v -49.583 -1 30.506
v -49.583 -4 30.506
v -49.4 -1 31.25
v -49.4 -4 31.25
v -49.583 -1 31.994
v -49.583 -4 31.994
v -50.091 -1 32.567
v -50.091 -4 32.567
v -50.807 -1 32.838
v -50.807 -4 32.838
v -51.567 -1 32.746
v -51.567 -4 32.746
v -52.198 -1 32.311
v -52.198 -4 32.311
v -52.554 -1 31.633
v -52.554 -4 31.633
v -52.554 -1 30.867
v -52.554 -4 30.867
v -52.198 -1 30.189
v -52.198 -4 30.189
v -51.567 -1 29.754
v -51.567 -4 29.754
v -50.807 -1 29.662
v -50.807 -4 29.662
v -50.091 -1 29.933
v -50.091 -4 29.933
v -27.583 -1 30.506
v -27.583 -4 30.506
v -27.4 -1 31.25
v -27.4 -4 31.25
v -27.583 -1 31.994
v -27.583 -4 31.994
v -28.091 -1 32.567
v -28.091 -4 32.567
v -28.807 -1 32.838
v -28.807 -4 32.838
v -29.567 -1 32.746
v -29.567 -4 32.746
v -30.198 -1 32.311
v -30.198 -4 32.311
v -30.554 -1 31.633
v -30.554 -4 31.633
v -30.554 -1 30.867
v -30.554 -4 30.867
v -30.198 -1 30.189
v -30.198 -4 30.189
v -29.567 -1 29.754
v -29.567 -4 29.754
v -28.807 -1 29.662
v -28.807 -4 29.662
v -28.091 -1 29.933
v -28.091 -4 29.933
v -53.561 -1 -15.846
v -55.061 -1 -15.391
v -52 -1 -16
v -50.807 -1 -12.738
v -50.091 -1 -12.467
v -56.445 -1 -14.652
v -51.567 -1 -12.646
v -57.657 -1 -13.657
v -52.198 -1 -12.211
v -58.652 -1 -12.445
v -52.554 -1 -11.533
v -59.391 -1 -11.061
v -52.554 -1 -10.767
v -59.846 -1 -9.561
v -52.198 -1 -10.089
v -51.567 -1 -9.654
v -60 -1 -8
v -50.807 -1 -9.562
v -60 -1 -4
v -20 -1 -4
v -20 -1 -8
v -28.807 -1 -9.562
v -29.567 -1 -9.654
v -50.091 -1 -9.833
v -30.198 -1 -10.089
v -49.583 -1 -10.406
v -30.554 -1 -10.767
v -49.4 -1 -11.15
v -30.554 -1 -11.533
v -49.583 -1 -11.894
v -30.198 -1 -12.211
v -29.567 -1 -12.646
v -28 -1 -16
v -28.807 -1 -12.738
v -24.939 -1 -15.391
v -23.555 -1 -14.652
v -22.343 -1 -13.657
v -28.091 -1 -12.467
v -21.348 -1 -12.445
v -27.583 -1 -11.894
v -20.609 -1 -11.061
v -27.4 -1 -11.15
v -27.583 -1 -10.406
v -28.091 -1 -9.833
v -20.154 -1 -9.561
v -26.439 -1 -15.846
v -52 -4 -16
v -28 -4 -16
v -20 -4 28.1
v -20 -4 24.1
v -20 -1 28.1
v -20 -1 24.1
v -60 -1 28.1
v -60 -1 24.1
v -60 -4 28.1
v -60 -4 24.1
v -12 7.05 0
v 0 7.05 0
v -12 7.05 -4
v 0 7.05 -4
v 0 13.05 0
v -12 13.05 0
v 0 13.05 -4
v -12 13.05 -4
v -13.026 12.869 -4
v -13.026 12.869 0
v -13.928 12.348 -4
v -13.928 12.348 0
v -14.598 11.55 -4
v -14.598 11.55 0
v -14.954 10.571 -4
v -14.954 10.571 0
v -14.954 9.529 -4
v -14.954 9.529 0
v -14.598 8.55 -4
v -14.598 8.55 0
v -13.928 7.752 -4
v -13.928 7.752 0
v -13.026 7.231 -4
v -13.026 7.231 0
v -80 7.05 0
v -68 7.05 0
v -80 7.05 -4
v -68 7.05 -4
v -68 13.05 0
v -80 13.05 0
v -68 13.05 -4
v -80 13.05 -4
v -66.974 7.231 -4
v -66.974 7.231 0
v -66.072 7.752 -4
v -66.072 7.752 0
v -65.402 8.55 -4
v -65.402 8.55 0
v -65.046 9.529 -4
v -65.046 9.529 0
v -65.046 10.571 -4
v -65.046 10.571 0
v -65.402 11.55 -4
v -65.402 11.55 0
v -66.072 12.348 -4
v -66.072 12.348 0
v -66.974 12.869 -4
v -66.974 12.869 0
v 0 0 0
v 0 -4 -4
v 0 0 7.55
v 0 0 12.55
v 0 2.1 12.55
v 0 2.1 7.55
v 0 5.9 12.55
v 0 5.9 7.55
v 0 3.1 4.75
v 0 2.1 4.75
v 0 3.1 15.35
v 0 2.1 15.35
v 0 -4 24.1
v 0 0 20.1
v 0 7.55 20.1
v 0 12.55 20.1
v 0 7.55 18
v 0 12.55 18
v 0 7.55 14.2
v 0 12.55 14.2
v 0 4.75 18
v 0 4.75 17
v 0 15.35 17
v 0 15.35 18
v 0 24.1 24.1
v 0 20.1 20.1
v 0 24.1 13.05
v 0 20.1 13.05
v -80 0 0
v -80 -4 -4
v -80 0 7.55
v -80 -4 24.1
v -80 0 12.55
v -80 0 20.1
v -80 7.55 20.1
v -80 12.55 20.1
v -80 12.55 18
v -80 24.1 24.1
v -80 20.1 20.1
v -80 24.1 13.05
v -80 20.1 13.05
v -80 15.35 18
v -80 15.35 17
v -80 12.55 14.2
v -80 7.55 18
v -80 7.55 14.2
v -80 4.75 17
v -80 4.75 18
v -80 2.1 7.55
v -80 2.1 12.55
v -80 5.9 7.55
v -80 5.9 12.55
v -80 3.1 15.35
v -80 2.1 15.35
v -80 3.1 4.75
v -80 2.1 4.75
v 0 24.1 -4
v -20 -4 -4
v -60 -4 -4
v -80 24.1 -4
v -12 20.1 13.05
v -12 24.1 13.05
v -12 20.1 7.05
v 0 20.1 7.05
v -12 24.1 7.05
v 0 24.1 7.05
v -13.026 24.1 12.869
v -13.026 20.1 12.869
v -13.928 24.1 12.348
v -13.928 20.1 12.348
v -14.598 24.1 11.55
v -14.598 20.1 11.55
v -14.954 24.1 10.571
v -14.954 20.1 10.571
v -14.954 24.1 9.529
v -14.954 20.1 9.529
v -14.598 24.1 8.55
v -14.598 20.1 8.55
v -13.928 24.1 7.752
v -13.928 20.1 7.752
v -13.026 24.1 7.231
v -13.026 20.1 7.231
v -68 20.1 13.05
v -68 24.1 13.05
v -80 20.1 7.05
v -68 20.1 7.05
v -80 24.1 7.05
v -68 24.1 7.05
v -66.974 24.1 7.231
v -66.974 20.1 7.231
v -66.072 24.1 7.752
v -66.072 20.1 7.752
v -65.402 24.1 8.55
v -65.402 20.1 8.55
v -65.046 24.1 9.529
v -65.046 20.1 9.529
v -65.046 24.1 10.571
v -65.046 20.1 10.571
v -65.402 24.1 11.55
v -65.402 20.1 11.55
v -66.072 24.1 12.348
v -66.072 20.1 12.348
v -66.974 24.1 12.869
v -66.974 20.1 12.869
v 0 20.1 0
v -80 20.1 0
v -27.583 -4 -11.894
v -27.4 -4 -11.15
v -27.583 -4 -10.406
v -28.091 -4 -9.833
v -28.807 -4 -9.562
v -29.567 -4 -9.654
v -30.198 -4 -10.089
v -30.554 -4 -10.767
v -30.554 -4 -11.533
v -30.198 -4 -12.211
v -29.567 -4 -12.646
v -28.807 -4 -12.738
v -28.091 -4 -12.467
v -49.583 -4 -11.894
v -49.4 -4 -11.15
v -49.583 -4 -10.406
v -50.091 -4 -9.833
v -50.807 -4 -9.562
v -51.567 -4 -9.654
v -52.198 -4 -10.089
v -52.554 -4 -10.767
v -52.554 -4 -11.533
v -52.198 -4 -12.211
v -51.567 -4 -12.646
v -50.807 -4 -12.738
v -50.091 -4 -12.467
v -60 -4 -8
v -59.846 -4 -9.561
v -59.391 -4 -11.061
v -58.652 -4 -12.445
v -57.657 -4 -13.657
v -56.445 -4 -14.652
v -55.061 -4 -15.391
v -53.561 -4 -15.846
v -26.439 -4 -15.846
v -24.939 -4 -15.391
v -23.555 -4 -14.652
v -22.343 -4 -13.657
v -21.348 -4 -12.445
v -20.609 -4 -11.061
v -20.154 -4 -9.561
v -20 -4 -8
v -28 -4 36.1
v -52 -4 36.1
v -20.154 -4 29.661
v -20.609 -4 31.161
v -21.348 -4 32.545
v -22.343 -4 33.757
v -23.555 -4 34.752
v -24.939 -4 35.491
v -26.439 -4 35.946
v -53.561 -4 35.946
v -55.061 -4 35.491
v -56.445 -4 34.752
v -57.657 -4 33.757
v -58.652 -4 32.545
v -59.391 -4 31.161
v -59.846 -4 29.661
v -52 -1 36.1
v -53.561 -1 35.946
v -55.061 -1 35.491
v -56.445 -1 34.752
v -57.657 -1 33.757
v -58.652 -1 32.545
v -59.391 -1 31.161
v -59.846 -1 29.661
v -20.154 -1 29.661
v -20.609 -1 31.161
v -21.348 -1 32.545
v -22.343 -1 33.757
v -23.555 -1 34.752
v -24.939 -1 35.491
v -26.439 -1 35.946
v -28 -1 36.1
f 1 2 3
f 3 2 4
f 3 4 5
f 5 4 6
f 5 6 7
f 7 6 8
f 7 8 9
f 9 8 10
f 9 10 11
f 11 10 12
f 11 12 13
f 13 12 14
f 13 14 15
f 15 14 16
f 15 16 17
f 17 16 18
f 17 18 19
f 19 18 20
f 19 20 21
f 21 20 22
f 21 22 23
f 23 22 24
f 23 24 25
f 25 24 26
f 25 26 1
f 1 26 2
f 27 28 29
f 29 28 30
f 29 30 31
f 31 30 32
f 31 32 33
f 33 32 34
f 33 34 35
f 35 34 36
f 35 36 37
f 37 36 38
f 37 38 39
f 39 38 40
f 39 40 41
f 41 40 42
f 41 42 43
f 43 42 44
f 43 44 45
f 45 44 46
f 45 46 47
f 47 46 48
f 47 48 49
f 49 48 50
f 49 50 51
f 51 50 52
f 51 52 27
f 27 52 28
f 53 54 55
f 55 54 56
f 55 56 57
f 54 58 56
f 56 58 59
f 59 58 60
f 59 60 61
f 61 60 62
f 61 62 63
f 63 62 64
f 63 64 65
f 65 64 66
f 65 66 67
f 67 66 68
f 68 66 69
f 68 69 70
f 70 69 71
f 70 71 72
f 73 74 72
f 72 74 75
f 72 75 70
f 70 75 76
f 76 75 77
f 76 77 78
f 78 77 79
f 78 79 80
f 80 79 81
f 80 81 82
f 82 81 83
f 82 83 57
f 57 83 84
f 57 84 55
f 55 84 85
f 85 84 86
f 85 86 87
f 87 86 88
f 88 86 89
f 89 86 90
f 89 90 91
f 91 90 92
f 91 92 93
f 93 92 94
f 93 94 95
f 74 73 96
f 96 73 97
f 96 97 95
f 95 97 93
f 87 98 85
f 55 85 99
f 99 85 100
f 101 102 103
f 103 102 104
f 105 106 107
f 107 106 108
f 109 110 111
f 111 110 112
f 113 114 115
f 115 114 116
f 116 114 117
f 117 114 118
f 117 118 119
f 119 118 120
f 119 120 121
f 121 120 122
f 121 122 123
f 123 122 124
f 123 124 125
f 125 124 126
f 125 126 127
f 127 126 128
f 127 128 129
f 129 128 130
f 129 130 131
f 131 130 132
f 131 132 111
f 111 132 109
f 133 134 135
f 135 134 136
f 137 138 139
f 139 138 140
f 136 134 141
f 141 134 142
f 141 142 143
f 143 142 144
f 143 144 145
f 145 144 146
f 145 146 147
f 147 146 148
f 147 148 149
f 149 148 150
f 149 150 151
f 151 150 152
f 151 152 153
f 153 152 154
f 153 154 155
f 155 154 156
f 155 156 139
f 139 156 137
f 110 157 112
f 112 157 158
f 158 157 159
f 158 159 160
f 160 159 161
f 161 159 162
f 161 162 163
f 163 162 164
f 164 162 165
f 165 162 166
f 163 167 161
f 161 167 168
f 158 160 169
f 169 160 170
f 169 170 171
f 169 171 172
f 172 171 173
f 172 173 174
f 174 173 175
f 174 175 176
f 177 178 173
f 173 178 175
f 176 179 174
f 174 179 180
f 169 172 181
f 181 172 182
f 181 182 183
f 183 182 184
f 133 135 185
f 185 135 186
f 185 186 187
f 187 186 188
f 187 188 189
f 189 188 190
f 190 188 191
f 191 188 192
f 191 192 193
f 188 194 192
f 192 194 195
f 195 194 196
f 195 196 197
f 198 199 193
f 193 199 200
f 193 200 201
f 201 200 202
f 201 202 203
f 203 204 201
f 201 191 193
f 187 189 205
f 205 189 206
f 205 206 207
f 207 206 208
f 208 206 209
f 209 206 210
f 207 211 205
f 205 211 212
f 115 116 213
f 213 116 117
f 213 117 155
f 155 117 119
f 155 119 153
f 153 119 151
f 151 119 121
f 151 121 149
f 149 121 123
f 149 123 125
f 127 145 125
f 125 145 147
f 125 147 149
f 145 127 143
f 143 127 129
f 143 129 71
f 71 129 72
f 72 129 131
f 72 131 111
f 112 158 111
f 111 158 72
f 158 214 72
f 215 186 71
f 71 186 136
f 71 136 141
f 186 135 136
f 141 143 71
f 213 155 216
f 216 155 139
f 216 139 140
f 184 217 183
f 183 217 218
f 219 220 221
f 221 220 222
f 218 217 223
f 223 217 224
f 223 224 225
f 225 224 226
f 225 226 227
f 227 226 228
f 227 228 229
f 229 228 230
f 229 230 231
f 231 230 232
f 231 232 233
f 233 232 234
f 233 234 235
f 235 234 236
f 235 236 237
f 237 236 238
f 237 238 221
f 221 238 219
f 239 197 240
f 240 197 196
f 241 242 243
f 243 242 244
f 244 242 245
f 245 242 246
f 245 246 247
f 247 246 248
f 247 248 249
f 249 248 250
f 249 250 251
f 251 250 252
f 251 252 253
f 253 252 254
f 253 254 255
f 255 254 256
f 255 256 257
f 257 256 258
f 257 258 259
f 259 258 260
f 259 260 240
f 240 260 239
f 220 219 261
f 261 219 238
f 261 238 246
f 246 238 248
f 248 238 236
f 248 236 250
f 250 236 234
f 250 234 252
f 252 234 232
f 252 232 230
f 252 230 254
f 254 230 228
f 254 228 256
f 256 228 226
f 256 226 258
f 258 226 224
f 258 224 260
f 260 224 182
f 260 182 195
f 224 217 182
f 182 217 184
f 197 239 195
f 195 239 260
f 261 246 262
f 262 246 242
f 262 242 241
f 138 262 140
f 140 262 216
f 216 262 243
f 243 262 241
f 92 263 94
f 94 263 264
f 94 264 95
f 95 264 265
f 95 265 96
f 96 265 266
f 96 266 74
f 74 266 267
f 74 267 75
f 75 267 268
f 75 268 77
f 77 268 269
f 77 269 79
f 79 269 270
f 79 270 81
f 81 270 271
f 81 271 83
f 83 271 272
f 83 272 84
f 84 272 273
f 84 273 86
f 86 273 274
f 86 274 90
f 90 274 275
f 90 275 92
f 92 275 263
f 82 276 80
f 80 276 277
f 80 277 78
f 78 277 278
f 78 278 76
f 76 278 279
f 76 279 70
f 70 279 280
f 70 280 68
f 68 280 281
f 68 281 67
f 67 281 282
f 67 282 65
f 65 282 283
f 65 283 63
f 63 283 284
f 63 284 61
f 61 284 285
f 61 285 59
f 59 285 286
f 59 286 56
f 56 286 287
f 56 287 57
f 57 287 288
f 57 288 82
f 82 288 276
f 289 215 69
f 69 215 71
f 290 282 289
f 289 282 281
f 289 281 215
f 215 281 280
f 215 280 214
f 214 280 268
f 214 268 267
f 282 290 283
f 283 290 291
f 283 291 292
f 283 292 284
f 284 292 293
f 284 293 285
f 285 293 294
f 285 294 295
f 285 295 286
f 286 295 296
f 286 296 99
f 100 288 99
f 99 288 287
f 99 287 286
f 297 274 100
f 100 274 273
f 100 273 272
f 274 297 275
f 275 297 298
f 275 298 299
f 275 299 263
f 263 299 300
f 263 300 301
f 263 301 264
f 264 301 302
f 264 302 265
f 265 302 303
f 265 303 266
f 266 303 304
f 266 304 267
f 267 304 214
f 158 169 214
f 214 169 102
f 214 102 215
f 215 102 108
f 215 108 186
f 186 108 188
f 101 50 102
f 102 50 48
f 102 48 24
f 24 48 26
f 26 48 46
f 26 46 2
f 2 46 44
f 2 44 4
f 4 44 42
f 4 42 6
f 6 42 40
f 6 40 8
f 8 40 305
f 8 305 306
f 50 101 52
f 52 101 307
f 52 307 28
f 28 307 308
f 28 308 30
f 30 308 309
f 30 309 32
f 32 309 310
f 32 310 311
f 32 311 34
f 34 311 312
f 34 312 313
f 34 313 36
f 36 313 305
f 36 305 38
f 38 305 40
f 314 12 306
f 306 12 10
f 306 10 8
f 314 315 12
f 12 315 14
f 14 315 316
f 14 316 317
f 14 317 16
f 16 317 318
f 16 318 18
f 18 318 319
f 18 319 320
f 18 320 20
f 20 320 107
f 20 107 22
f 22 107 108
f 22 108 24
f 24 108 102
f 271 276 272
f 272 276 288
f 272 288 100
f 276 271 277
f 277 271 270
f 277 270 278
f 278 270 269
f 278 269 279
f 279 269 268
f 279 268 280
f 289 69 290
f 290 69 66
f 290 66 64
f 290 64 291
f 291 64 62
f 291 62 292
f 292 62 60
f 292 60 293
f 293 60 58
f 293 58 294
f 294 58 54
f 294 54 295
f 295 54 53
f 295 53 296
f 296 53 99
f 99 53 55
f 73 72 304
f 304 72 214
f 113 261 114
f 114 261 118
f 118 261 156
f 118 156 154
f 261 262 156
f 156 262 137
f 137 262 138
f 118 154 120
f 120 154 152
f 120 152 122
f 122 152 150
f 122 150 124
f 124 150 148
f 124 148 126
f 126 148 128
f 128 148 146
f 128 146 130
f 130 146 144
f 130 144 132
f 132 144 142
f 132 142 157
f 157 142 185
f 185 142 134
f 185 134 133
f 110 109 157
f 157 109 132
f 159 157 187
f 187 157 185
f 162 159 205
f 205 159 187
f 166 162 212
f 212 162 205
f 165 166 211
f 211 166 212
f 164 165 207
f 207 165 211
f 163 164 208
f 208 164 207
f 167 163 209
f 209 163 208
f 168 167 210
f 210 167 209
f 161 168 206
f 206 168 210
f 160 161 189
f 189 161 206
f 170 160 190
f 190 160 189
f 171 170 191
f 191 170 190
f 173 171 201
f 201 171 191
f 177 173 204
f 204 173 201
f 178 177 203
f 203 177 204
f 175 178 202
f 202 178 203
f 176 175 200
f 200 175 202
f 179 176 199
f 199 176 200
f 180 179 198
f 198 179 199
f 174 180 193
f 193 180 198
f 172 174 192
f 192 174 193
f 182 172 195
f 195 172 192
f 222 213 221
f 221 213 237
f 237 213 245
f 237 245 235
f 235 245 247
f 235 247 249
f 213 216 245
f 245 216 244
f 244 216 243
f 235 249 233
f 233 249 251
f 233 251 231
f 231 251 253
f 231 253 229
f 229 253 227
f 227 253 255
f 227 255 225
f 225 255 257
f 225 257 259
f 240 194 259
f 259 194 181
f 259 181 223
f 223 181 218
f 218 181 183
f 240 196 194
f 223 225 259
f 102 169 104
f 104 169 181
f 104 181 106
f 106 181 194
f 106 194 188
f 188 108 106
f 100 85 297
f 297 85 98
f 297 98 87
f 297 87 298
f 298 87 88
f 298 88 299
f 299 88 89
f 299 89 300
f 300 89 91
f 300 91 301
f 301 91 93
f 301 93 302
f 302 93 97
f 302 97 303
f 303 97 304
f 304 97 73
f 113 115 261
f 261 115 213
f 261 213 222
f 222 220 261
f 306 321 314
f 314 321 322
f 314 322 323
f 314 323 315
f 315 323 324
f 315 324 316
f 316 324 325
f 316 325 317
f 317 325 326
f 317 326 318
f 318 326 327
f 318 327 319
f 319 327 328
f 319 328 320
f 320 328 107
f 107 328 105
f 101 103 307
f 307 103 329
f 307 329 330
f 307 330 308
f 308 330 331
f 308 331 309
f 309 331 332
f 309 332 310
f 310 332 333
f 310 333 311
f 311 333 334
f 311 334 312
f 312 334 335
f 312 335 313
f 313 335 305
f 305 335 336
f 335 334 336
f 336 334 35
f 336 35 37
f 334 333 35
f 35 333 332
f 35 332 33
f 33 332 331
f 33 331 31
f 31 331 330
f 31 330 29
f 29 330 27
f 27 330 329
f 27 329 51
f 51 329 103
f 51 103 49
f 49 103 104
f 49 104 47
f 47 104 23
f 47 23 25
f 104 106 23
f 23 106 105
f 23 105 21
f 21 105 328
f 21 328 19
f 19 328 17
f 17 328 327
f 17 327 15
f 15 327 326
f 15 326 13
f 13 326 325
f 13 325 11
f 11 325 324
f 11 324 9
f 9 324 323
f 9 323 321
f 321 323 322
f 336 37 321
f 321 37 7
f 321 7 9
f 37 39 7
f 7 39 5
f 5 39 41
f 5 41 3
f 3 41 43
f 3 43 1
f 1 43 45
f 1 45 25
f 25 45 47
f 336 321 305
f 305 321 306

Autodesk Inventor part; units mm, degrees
ref_plane "YZ Plane" through (0, 0, 0) normal (1, 0, 0) x (0, 1, 0)
ref_plane "XZ Plane" through (0, 0, 0) normal (0, 1, 0) x (-1, 0, 0)
ref_plane "XY Plane" through (0, 0, 0) normal (0, 0, 1) x (1, 0, 0)
sketch "Sketch1" plane through (0, 0, 0) normal (1, 0, 0) x (0, 1, 0)
  line L0 (0, 0) -> (20.1, 0)
  line L1 (20.1, 0) -> (20.1, 20.1)
  line L2 (20.1, 20.1) -> (0, 20.1)
  line L3 (0, 20.1) -> (0, 0)
  line L4 (-4, 24.1) -> (24.1, 24.1)
  line L5 (24.1, 24.1) -> (24.1, -4)
  line L6 (24.1, -4) -> (-4, -4)
  line L7 (-4, -4) -> (-4, 24.1)
  line L8 (12.55, 22.2) -> (7.55, 22.2)
  line L9 (7.55, 22.2) -> (7.55, 18)
  line L10 (7.55, 18) -> (12.55, 18)
  line L11 (12.55, 18) -> (12.55, 22.2)
  line L12 (12.55, 22.2) -> (7.55, 18) construction
  line L13 (7.55, 22.2) -> (12.55, 18) construction
  line L14 (12.55, 18) -> (15.35, 18)
  line L15 (15.35, 18) -> (15.35, 17)
  line L16 (15.35, 17) -> (12.55, 14.2)
  line L17 (12.55, 14.2) -> (7.55, 14.2)
  line L18 (7.55, 18) -> (4.75, 18)
  line L19 (4.75, 18) -> (4.75, 17)
  line L20 (4.75, 17) -> (7.55, 14.2)
  line L21 (2.1, 15.35) -> (3.1, 15.35)
  line L22 (3.1, 4.75) -> (5.9, 7.55)
  line L23 (2.1, 4.75) -> (3.1, 4.75)
  line L24 (-2.1, 12.55) -> (-2.1, 7.55)
  line L25 (2.1, 12.55) -> (-2.1, 12.55)
  line L26 (-2.1, 12.55) -> (2.1, 7.55) construction
  line L27 (-2.1, 7.55) -> (2.1, 12.55) construction
  line L28 (2.1, 7.55) -> (2.1, 4.75)
  line L29 (-2.1, 7.55) -> (2.1, 7.55)
  line L30 (2.1, 7.55) -> (2.1, 12.55)
  line L31 (5.9, 12.55) -> (5.9, 7.55)
  line L32 (2.1, 12.55) -> (2.1, 15.35)
  line L33 (3.1, 15.35) -> (5.9, 12.55)
  point P0 (10.05, 20.1)
  point P1 (0, 10.05)
  point P2 (10.05, 20.1)
  point P3 (0, 10.05)
  point P4 (0, 7.55)
  point P5 (0, 12.55)
  point P6 (7.55, 20.1)
  point P7 (12.55, 20.1)
  dimension "d0" = 20.1
  dimension "d1" = 20.1
  dimension "d2" = 4
  dimension "d3" = 5
  dimension "d4" = 4.2
  dimension "d5" = 2.8
  dimension "d6" = 1
  dimension "d7" = 3.8
  dimension "d8" = 2.8
  dimension "d9" = 5
  dimension "d10" = 1
  dimension "d11" = 135
  dimension "d12" = 5
  dimension "d13" = 4.2
  dimension "d14" = 2.8
  dimension "d15" = 1
  dimension "d16" = 3.8
  dimension "d17" = 2.8
  dimension "d18" = 5
  dimension "d19" = 1
  dimension "d20" = 135
  dimension "d21" = 7.55
  dimension "d22" = 2.1
  dimension "d23" = 90
  dimension "d24" = 7.55
  dimension "d25" = 2.1
  dimension "d26" = 90
extrude "Extrusion1" add sketch "Sketch1" against normal blind 80 contours L29 L24 L25 L3 | L3 L25 L30 L29 | L30 L32 L21 L33 L31 L22 L23 L28 | L11 L10 L9 L2 | L2 L9 L8 L11 | L14 L15 L16 L17 L20 L19 L18 L10 | L4 L5 L6 L7
sketch "Sketch2" plane through (0, -4, -4) normal (0, -1, 0) x (1, 0, 0)
  line L0 (0, 28.1) -> (0, 0) projected
  line L1 (0, 28.1) -> (-80, 28.1) projected
  line L2 (-80, 0) -> (-80, 28.1) projected
  line L3 (0, 0) -> (-80, 0) projected
  line L4 (-80, 0) -> (0, 28.1) construction
  line L5 (-80, 28.1) -> (0, 0) construction
  line L6 (-51, 35.25) -> (-51, -7.15) construction
  line L7 (-51, -7.15) -> (-29, -7.15) construction
  line L8 (-29, -7.15) -> (-29, 35.25) construction
  line L9 (-29, 35.25) -> (-51, 35.25) construction
  line L10 (-51, 35.25) -> (-29, -7.15) construction
  line L11 (-51, -7.15) -> (-29, 35.25) construction
  circle A0 centre (-29, 35.25) radius 1.6
  circle A1 centre (-29, -7.15) radius 1.6
  circle A2 centre (-51, 35.25) radius 1.6
  circle A3 centre (-51, -7.15) radius 1.6
  line L12 (-23, 28.1) -> (-57, 28.1)
  line L13 (-57, 40.1) -> (-23, 40.1)
  line L14 (-23, 0) -> (-57, 0)
  line L15 (-57, -12) -> (-23, -12)
  line L16 (-57, -12) -> (-60, -12)
  line L17 (-23, -12) -> (-20, -12)
  line L18 (-20, -12) -> (-20, 0)
  line L19 (-60, -12) -> (-60, 0)
  line L20 (-23, 40.1) -> (-20, 40.1)
  line L21 (-20, 40.1) -> (-20, 28.1)
  line L22 (0, 28.1) -> (-80, 28.1) projected
  line L23 (-57, 40.1) -> (-60, 40.1)
  line L24 (-60, 40.1) -> (-60, 28.1)
  point P0 (0, 4)
  point P1 (-40, 14.05)
  dimension "d29" = 42.4
  dimension "d31" = 22
  dimension "d32" = 3.2
  dimension "d35" = 42.4
  dimension "d38" = 22
  dimension "d41" = 34
  dimension "d42" = 12
  dimension "d44" = 12
  dimension "d46" = 34
  dimension "d59" = 3
  dimension "d60" = 3
  dimension "d61" = 3
  dimension "d62" = 3
extrude "Extrusion2" add sketch "Sketch2" against normal blind 3 contours L18 L17 L15 L16 L19 L3
sketch "Sketch3" plane through (0, 24.1, 24.1) normal (0, 1, 0) x (1, 0, 0)
  line L0 (0, 28.1) -> (0, 0) projected
  line L1 (0, 28.1) -> (-80, 28.1) projected
  line L2 (-80, 0) -> (-80, 28.1) projected
  line L3 (0, 0) -> (-80, 0) projected
  line L4 (0, 16.55) -> (0, 11.55) construction
  line L5 (0, 14.05) -> (-80, 14.05) construction
  line L6 (-80, 28.1) -> (-80, 0) construction
  circle A0 centre (-12, 14.05) radius 3
  circle A1 centre (-68, 14.05) radius 3
  line L7 (-68, 17.05) -> (-80, 17.05)
  line L8 (-68, 11.05) -> (-80, 11.05)
  line L9 (-12, 17.05) -> (0, 17.05)
  line L10 (0, 19.35) -> (0, 16.55) projected
  line L11 (-12, 11.05) -> (0, 11.05)
  line L12 (0, 8.75) -> (0, 11.55) projected
  point P0 (0, 24.1)
  point P1 (0, 11.05)
  point P2 (-80, 11.05)
  dimension "d49" = 6
  dimension "d50" = 6
  dimension "d51" = 12
  dimension "d52" = 12
  dimension "d53" = 6
  dimension "d54" = 6
extrude "Extrusion3" cut sketch "Sketch3" against normal up to surface (4 mm away) contours L0 L11 A0 L9 | L7 A1 L8 L2 | A0 | A1
ref_plane "Work Plane1" through (0, 24.1, -4) normal (0, -0.7071, -0.7071) x (-1, 0, 0)
mirror "Mirror1" about plane through (0, 24.1, -4) normal (0, -0.7071, -0.7071) of "Extrusion3"
extrude "Extrusão4" add sketch "Sketch2" against normal blind 3 contours L1 L24 L23 L13 L20 L21
fillet "Arredondamento3" radius 8 4 edges at (-60, -2.5, 36.1) (-20, -2.5, 36.1) (-20, -2.5, -16) (-60, -2.5, -16)
equation "\"d8\" = d5"
equation "\"d9\" = d3"
equation "\"d10\" = d6"
equation "\"d17\" = d14"
equation "\"d18\" = d12"
equation "\"d19\" = d15"
properties part number "cameraSlider2"
